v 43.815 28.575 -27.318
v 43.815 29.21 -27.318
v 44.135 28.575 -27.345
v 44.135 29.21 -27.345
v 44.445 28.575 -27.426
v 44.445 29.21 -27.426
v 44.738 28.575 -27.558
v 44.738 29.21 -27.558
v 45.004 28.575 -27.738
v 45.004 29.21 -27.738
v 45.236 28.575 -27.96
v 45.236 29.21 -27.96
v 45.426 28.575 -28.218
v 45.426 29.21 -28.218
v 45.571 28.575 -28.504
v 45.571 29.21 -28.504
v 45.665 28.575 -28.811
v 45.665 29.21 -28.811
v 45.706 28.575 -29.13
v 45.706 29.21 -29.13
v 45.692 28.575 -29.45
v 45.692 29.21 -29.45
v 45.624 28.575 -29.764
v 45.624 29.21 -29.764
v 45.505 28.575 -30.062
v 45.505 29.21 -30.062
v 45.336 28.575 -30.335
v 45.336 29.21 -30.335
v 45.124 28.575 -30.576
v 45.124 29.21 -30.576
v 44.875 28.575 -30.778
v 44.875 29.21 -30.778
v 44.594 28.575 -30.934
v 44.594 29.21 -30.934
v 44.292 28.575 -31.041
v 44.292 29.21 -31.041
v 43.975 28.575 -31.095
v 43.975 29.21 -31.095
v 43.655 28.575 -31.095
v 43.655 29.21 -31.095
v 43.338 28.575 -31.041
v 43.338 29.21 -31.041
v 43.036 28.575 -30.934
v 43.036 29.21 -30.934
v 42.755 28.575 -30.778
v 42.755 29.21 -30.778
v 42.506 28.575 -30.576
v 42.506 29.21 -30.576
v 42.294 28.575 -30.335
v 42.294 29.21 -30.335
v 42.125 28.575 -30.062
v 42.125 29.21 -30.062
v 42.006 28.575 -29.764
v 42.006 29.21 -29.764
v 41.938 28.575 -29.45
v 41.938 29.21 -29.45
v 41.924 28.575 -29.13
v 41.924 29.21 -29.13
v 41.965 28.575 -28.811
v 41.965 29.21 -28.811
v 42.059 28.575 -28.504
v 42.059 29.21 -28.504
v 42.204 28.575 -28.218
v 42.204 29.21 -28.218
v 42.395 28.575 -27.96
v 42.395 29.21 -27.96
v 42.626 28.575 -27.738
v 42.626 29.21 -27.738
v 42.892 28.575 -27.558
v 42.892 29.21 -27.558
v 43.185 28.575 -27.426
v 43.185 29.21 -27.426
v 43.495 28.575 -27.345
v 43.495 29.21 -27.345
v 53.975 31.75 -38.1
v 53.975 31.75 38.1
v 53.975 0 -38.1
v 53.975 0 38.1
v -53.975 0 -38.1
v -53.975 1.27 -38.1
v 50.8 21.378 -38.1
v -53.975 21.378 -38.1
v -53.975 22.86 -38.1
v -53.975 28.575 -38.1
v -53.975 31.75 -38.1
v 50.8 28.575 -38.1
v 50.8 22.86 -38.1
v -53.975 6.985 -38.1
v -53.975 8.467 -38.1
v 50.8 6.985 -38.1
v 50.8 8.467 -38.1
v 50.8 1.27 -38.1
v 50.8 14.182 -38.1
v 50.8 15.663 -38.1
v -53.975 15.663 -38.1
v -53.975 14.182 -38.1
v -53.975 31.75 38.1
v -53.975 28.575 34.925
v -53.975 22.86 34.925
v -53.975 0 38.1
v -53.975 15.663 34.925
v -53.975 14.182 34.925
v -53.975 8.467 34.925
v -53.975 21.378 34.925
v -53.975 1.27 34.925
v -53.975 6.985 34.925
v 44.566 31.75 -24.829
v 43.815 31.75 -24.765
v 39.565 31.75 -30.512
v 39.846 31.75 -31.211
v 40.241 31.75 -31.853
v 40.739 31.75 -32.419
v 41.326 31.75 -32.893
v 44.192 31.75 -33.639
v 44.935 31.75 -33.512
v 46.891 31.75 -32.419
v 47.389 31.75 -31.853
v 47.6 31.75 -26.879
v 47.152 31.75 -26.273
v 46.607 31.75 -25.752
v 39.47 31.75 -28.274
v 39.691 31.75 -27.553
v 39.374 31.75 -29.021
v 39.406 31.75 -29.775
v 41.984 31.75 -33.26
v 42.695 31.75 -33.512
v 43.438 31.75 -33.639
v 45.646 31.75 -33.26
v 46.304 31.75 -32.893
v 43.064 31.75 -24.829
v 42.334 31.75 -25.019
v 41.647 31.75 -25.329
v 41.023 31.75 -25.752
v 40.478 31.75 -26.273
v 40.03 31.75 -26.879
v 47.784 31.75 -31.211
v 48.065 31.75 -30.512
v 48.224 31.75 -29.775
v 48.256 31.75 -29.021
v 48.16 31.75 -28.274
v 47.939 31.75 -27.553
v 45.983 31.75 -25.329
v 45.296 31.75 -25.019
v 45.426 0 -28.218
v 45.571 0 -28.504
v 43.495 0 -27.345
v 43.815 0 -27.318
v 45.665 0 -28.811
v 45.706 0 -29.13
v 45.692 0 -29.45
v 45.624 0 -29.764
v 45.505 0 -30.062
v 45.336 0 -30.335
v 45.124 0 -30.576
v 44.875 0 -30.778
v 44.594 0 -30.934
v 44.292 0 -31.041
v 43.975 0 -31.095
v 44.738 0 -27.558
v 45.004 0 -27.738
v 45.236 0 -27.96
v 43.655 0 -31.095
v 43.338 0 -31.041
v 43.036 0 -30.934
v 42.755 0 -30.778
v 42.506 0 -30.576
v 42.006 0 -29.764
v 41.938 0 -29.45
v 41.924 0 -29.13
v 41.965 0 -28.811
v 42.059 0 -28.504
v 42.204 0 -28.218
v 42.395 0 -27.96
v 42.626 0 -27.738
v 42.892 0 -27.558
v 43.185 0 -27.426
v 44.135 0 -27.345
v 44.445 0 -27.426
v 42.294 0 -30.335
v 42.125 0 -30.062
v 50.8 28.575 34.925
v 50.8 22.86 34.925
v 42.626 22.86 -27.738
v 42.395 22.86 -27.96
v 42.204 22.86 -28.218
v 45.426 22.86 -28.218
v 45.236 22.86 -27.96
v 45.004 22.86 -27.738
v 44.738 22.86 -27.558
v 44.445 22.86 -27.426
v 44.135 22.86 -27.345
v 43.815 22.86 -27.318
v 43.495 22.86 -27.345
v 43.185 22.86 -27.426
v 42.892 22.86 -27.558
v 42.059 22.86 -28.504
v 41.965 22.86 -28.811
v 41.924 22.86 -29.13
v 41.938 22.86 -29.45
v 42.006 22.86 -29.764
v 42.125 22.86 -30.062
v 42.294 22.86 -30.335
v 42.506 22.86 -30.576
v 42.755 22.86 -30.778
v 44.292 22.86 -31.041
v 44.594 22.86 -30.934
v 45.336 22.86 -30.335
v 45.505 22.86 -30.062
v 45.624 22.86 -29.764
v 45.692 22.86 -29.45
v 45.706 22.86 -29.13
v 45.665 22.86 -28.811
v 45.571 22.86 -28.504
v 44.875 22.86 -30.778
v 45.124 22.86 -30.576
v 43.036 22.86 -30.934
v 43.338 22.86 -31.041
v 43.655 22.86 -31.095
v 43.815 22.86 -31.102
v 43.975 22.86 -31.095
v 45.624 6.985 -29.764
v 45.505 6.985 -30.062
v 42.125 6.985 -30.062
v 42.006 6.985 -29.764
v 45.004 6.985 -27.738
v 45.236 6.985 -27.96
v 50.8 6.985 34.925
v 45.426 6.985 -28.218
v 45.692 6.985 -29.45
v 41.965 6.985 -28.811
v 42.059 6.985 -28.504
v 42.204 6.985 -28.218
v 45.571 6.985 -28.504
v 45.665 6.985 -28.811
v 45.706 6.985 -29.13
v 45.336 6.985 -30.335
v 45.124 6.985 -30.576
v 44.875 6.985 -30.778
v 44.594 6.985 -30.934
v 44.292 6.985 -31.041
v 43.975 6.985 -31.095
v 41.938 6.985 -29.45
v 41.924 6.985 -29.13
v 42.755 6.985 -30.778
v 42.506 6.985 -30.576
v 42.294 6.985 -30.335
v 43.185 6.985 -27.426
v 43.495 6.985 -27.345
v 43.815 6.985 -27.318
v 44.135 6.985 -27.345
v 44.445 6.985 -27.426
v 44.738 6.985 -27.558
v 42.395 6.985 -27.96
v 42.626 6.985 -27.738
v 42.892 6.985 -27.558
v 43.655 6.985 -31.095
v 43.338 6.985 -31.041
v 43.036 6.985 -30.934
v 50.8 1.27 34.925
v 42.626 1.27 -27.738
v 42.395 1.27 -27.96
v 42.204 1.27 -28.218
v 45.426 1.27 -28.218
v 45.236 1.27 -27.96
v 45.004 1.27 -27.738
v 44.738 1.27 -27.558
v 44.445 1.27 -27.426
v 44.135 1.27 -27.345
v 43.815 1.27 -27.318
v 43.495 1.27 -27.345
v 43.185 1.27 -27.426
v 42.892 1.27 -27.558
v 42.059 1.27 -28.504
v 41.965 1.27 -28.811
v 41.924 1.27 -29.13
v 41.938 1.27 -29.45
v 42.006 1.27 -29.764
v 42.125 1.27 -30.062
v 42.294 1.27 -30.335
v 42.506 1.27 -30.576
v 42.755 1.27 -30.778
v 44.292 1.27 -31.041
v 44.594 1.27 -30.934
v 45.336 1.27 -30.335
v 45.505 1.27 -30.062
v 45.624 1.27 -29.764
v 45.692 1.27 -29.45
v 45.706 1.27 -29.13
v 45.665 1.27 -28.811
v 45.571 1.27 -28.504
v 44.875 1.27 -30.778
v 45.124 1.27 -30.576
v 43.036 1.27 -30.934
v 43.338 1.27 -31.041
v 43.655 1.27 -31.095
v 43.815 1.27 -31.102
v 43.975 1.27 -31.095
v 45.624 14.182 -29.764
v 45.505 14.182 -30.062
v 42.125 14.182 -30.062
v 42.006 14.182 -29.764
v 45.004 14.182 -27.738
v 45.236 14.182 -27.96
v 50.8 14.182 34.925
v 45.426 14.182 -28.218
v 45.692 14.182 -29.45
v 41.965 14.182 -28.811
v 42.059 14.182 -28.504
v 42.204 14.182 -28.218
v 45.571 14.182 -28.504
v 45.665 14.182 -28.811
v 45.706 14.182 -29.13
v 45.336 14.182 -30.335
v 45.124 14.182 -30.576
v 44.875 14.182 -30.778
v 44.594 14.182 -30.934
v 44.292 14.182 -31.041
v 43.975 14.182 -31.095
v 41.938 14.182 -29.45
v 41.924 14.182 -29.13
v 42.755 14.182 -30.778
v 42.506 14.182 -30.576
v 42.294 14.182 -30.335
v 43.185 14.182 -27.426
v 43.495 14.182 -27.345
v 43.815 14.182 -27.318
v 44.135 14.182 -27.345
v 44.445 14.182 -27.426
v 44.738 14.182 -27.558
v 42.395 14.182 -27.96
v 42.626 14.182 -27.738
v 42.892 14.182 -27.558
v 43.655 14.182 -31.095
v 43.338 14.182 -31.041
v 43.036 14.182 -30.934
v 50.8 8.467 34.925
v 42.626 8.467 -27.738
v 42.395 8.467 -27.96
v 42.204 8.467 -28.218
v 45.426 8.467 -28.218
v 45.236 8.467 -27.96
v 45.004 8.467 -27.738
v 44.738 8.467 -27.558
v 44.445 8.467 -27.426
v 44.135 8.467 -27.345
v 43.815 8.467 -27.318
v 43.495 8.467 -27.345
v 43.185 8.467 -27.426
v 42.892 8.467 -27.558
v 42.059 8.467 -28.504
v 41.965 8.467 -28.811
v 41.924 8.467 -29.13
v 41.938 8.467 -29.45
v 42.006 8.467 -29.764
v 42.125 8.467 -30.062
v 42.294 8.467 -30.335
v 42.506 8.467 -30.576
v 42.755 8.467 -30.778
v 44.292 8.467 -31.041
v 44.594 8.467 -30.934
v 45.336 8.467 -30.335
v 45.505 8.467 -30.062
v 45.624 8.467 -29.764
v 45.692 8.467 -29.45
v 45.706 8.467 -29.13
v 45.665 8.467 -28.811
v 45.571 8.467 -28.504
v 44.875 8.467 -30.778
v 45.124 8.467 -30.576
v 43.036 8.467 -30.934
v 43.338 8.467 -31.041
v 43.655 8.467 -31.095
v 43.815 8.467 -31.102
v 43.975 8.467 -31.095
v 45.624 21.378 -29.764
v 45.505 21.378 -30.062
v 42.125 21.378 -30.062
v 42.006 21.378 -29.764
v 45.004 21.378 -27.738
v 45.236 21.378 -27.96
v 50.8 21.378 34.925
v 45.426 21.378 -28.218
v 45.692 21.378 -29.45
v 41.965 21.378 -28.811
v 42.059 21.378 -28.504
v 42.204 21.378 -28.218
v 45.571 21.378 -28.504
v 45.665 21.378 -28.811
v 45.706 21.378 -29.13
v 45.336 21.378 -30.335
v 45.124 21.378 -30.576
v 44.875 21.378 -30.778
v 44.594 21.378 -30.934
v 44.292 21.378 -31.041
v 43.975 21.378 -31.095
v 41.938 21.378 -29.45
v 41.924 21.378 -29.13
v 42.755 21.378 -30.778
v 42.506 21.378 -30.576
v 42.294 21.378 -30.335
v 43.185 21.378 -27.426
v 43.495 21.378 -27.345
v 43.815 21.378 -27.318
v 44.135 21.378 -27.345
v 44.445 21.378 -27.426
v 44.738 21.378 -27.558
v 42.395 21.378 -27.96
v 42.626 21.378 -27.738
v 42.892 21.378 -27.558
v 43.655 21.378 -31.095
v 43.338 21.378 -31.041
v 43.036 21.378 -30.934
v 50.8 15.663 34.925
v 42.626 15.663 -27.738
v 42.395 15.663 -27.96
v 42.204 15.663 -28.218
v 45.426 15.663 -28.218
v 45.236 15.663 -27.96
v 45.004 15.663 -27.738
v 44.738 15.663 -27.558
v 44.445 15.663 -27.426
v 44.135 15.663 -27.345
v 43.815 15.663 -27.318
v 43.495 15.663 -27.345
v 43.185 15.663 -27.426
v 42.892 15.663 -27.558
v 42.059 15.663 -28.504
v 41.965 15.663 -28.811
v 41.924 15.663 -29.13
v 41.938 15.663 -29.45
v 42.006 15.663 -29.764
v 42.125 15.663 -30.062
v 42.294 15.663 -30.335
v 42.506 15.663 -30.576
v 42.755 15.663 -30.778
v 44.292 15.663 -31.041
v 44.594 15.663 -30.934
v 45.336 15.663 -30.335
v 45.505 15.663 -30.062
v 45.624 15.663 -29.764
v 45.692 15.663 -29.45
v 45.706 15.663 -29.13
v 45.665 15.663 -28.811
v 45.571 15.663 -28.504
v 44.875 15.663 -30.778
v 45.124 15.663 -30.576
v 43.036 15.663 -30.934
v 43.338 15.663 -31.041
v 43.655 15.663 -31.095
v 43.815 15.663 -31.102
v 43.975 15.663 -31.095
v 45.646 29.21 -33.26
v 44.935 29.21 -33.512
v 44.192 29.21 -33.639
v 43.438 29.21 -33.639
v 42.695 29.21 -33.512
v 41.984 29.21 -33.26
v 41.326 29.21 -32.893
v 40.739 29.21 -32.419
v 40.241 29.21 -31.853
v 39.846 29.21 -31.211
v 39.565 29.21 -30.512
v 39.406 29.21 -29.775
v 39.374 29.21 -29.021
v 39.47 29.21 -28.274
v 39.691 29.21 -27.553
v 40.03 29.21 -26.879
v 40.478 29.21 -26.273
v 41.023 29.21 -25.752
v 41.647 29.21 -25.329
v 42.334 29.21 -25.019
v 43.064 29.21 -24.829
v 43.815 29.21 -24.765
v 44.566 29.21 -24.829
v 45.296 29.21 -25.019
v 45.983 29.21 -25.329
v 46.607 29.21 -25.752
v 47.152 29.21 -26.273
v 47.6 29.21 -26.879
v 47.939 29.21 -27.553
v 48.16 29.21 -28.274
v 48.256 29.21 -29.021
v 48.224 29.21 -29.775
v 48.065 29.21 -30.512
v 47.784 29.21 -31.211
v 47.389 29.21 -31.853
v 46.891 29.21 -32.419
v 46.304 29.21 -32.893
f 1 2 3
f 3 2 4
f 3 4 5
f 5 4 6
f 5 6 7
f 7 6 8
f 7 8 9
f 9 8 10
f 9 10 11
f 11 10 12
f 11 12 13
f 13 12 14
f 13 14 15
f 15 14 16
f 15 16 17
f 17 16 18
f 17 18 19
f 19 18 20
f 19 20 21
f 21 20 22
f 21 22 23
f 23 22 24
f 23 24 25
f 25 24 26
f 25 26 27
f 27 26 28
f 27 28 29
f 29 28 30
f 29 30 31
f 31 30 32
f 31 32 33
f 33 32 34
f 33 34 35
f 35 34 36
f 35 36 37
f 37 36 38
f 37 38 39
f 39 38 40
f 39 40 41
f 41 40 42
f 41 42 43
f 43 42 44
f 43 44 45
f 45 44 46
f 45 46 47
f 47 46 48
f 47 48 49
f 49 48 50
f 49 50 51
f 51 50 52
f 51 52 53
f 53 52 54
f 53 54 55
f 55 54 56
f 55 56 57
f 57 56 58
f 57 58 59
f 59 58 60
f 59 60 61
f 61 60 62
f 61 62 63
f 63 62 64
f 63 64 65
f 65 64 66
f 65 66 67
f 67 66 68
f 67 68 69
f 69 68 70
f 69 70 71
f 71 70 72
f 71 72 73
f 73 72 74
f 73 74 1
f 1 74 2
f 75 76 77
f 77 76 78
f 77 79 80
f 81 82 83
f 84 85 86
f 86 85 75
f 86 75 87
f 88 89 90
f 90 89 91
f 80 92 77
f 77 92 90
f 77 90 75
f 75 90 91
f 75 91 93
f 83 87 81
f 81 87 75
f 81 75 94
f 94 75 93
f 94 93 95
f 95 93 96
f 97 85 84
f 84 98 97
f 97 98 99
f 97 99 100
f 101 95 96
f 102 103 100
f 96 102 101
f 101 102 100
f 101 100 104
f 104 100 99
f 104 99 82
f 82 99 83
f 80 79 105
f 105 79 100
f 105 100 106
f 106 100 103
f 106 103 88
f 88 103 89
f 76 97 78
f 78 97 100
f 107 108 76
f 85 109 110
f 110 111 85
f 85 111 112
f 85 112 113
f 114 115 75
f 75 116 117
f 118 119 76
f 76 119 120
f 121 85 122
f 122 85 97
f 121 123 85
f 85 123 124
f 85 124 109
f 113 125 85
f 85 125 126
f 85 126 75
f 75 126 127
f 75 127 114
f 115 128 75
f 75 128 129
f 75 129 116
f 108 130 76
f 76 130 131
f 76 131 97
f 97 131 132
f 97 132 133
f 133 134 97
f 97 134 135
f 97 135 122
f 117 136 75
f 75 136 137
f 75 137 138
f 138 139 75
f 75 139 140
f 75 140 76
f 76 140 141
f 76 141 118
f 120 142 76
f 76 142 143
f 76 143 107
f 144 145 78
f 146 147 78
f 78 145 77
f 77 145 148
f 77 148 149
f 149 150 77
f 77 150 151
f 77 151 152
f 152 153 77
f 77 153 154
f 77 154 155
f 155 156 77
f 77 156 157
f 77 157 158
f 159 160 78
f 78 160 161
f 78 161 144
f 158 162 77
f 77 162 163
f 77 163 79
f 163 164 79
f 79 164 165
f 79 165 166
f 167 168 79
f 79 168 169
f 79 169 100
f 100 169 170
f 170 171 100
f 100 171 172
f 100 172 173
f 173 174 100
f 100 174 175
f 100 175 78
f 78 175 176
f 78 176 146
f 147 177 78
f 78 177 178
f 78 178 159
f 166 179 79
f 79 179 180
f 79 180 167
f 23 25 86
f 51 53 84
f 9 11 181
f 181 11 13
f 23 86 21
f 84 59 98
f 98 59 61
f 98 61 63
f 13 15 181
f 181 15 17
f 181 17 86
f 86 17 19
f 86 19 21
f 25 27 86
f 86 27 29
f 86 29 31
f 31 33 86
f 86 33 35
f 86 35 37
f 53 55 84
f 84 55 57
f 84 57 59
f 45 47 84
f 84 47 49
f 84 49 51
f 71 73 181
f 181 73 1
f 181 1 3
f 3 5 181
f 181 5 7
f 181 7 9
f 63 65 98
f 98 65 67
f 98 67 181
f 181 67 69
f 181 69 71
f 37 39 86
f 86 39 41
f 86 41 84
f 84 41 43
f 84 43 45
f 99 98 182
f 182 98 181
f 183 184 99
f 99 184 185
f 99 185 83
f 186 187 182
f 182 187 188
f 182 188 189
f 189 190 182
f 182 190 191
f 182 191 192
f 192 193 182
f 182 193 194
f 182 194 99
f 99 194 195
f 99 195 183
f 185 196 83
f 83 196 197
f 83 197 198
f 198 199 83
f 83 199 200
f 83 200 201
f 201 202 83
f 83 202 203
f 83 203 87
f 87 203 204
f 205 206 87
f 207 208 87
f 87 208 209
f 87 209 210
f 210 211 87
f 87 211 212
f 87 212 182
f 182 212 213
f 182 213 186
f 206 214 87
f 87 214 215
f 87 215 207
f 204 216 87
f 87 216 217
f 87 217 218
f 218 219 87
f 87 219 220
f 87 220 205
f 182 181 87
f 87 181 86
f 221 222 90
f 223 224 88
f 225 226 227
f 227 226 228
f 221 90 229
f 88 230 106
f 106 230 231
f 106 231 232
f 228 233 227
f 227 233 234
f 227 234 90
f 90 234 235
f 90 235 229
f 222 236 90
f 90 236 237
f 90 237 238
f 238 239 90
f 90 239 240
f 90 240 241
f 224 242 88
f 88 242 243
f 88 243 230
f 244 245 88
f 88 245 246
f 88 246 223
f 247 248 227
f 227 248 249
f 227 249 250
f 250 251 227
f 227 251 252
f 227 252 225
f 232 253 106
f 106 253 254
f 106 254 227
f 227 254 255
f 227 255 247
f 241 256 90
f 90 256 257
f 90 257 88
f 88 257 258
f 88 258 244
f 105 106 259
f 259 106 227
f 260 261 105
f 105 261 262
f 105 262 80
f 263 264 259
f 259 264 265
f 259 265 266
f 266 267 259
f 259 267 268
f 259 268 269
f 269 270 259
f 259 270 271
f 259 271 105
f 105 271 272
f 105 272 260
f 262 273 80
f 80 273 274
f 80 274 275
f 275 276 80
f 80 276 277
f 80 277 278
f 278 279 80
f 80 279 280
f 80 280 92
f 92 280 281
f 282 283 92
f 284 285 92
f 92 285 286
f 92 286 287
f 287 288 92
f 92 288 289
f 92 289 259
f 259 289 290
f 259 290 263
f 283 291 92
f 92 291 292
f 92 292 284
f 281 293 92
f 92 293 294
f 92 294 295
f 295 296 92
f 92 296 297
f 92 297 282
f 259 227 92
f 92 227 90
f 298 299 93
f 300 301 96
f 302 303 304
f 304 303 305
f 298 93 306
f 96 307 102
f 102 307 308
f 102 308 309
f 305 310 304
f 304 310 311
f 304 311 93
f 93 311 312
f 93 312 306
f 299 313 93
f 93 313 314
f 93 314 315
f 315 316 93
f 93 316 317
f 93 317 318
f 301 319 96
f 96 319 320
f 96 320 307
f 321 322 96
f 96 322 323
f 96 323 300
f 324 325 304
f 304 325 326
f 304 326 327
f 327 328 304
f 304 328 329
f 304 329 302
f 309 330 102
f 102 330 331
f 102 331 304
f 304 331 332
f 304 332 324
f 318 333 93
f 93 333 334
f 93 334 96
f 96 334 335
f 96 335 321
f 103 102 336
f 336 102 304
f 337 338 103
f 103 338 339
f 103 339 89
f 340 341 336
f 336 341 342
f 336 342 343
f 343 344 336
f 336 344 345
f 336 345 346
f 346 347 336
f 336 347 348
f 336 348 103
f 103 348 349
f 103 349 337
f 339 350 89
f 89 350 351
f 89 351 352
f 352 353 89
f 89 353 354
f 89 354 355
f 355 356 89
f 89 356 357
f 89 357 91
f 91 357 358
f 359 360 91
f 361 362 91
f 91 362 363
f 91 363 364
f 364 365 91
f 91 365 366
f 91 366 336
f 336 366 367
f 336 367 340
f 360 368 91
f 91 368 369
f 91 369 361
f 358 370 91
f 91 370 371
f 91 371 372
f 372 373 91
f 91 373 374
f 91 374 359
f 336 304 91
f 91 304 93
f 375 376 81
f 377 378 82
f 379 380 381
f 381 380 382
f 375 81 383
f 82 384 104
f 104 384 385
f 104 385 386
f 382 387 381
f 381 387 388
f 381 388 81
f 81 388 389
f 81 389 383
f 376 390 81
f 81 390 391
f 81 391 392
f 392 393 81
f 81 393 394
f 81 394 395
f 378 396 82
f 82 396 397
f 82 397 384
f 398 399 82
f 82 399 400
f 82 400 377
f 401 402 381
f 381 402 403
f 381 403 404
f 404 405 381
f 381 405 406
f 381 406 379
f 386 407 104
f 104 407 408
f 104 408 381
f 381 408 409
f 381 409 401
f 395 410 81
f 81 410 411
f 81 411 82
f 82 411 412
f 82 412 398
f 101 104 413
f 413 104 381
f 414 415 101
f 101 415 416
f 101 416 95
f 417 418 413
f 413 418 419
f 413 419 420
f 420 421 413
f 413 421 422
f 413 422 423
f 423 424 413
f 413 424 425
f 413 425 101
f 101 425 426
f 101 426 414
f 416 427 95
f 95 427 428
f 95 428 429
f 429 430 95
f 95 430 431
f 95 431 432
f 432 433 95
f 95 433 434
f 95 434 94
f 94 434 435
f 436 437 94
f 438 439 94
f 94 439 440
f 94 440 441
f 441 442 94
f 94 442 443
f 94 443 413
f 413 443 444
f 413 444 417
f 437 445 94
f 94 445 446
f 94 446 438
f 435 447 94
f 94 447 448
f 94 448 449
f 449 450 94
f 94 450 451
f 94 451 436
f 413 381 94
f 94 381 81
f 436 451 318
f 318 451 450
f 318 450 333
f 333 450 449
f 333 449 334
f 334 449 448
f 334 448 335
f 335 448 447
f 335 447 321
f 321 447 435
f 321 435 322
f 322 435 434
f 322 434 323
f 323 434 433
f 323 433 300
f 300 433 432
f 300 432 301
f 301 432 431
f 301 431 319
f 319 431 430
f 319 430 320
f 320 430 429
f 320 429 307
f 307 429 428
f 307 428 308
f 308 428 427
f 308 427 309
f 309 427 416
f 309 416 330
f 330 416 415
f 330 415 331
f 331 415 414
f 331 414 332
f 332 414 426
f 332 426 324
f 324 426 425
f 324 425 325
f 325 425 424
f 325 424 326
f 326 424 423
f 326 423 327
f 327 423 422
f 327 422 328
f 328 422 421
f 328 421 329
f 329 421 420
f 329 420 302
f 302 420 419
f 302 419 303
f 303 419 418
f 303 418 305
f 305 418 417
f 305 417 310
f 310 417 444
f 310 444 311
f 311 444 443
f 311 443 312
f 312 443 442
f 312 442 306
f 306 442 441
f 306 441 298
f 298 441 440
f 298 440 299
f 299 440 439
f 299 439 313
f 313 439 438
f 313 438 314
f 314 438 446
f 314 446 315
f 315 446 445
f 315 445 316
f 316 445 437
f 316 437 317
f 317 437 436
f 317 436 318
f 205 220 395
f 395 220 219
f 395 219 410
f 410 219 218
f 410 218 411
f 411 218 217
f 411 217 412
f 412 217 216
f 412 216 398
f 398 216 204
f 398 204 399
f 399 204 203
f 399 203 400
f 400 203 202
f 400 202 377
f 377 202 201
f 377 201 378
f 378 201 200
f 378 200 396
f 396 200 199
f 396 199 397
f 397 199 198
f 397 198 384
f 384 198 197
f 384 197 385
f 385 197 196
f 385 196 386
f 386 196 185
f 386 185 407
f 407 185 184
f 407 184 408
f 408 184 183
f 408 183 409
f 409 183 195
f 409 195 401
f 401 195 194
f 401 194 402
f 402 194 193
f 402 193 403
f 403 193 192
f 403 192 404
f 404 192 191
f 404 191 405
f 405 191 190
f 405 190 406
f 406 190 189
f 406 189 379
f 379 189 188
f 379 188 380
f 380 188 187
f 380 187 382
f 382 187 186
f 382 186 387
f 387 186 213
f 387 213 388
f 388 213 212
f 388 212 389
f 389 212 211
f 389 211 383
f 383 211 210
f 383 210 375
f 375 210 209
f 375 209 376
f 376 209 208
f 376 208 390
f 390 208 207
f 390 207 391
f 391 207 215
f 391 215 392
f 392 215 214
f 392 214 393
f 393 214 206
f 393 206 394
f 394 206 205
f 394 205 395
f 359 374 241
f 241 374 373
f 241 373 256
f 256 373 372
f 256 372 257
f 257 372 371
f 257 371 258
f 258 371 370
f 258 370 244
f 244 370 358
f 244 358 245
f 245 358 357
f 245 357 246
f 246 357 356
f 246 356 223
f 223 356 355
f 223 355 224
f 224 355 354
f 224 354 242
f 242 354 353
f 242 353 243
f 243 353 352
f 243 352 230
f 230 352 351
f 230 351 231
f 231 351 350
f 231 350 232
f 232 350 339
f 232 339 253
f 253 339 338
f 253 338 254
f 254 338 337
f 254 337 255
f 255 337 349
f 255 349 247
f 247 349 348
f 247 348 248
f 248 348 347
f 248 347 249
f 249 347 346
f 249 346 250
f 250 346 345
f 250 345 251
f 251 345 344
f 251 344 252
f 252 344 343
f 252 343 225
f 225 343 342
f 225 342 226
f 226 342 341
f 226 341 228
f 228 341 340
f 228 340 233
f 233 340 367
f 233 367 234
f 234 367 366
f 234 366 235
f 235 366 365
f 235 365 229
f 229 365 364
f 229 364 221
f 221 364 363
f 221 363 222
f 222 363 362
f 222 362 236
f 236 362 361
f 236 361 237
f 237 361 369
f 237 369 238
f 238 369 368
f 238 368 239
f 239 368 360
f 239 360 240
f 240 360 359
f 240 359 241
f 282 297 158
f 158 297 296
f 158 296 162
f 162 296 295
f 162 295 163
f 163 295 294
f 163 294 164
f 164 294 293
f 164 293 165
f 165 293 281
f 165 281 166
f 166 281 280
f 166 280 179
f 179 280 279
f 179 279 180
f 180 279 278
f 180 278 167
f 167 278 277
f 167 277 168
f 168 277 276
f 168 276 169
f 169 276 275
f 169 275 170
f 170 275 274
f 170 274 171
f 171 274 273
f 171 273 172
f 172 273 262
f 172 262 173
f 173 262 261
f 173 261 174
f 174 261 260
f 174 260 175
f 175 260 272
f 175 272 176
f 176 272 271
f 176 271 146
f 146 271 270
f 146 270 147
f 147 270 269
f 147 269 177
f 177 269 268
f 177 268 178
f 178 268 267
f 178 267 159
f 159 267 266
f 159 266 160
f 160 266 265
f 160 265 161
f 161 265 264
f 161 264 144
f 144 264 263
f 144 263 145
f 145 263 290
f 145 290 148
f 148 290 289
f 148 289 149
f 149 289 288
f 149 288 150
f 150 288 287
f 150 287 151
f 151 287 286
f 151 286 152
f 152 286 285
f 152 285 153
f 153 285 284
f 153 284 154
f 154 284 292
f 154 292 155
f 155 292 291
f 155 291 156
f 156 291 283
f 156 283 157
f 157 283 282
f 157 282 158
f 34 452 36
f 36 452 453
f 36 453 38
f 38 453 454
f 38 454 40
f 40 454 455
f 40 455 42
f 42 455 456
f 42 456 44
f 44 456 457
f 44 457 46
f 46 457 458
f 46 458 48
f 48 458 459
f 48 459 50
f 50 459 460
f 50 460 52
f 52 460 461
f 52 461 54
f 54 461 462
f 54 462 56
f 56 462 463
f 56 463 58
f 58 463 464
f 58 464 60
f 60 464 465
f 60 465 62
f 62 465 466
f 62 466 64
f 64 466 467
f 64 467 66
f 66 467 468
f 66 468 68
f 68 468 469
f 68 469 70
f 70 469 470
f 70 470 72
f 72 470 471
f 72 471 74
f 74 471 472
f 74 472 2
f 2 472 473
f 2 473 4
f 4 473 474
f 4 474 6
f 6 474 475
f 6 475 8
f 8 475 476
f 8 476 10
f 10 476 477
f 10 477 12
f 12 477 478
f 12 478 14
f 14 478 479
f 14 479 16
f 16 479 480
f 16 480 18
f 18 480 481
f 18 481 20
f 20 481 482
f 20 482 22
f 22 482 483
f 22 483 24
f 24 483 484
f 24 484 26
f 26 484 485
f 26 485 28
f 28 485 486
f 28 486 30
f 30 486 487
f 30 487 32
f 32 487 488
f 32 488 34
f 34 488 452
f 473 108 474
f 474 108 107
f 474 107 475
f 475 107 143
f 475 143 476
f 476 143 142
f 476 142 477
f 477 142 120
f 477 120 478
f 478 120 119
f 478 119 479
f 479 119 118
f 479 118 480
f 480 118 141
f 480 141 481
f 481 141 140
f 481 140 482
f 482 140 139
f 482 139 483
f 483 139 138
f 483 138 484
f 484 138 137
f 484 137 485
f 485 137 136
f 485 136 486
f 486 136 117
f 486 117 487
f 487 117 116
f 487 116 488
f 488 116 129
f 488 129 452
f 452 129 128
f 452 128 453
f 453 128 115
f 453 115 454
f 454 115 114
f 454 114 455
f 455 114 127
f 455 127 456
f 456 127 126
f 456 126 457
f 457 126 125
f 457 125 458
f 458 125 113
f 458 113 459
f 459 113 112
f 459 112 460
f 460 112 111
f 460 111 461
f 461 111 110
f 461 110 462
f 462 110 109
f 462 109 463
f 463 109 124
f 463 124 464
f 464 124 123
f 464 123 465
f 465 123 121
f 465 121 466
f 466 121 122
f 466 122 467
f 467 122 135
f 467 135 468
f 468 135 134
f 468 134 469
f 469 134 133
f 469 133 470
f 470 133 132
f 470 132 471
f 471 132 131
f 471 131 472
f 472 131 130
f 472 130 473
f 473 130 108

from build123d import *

# Parameters (mm, degrees)
SKETCH1_W           = 107.95
SKETCH1_H           = 76.2
BOSS_EXTRUDE1_DEPTH = 31.75
SKETCH2_W           = 73.025
SKETCH2_H           = 5.715
CUT_EXTRUDE1_DEPTH  = 104.775
SKETCH3_R           = 1.8923
CUT_EXTRUDE2_DEPTH  = 32.75
SKETCH4_R           = 4.445
CUT_EXTRUDE3_DEPTH  = 2.54


with BuildPart() as part:
    # Sketch1 → Boss-Extrude1 (new body)
    with BuildSketch(Plane(origin=(0, 0, 0), x_dir=(1, 0, 0), z_dir=(0, 1, 0))):
        Rectangle(SKETCH1_W, SKETCH1_H)
    extrude(amount=BOSS_EXTRUDE1_DEPTH)

    # Sketch2 → Cut-Extrude1 (cut)
    with BuildSketch(Plane.ZY.offset(53.975)):
        with Locations((-1.5875, 25.7175)):
            Rectangle(SKETCH2_W, SKETCH2_H)
        with Locations((-1.5875, 18.520833333)):
            Rectangle(SKETCH2_W, SKETCH2_H)
        with Locations((-1.5875, 11.324166667)):
            Rectangle(SKETCH2_W, SKETCH2_H)
        with Locations((-1.5875, 4.1275)):
            Rectangle(SKETCH2_W, SKETCH2_H)
    extrude(amount=-CUT_EXTRUDE1_DEPTH, mode=Mode.SUBTRACT)

    # Sketch3 → Cut-Extrude2 (cut, through all)
    with BuildSketch(Plane(origin=(0, 31.75, 0), x_dir=(1, 0, 0), z_dir=(0, 1, 0))):
        with Locations((43.815, 29.21)):
            Circle(SKETCH3_R)
    extrude(amount=-CUT_EXTRUDE2_DEPTH, mode=Mode.SUBTRACT)

    # Sketch4 → Cut-Extrude3 (cut)
    with BuildSketch(Plane(origin=(0, 31.75, 0), x_dir=(1, 0, 0), z_dir=(0, 1, 0))):
        with Locations((43.815, 29.21)):
            Circle(SKETCH4_R)
    extrude(amount=-CUT_EXTRUDE3_DEPTH, mode=Mode.SUBTRACT)


solid = part.part
